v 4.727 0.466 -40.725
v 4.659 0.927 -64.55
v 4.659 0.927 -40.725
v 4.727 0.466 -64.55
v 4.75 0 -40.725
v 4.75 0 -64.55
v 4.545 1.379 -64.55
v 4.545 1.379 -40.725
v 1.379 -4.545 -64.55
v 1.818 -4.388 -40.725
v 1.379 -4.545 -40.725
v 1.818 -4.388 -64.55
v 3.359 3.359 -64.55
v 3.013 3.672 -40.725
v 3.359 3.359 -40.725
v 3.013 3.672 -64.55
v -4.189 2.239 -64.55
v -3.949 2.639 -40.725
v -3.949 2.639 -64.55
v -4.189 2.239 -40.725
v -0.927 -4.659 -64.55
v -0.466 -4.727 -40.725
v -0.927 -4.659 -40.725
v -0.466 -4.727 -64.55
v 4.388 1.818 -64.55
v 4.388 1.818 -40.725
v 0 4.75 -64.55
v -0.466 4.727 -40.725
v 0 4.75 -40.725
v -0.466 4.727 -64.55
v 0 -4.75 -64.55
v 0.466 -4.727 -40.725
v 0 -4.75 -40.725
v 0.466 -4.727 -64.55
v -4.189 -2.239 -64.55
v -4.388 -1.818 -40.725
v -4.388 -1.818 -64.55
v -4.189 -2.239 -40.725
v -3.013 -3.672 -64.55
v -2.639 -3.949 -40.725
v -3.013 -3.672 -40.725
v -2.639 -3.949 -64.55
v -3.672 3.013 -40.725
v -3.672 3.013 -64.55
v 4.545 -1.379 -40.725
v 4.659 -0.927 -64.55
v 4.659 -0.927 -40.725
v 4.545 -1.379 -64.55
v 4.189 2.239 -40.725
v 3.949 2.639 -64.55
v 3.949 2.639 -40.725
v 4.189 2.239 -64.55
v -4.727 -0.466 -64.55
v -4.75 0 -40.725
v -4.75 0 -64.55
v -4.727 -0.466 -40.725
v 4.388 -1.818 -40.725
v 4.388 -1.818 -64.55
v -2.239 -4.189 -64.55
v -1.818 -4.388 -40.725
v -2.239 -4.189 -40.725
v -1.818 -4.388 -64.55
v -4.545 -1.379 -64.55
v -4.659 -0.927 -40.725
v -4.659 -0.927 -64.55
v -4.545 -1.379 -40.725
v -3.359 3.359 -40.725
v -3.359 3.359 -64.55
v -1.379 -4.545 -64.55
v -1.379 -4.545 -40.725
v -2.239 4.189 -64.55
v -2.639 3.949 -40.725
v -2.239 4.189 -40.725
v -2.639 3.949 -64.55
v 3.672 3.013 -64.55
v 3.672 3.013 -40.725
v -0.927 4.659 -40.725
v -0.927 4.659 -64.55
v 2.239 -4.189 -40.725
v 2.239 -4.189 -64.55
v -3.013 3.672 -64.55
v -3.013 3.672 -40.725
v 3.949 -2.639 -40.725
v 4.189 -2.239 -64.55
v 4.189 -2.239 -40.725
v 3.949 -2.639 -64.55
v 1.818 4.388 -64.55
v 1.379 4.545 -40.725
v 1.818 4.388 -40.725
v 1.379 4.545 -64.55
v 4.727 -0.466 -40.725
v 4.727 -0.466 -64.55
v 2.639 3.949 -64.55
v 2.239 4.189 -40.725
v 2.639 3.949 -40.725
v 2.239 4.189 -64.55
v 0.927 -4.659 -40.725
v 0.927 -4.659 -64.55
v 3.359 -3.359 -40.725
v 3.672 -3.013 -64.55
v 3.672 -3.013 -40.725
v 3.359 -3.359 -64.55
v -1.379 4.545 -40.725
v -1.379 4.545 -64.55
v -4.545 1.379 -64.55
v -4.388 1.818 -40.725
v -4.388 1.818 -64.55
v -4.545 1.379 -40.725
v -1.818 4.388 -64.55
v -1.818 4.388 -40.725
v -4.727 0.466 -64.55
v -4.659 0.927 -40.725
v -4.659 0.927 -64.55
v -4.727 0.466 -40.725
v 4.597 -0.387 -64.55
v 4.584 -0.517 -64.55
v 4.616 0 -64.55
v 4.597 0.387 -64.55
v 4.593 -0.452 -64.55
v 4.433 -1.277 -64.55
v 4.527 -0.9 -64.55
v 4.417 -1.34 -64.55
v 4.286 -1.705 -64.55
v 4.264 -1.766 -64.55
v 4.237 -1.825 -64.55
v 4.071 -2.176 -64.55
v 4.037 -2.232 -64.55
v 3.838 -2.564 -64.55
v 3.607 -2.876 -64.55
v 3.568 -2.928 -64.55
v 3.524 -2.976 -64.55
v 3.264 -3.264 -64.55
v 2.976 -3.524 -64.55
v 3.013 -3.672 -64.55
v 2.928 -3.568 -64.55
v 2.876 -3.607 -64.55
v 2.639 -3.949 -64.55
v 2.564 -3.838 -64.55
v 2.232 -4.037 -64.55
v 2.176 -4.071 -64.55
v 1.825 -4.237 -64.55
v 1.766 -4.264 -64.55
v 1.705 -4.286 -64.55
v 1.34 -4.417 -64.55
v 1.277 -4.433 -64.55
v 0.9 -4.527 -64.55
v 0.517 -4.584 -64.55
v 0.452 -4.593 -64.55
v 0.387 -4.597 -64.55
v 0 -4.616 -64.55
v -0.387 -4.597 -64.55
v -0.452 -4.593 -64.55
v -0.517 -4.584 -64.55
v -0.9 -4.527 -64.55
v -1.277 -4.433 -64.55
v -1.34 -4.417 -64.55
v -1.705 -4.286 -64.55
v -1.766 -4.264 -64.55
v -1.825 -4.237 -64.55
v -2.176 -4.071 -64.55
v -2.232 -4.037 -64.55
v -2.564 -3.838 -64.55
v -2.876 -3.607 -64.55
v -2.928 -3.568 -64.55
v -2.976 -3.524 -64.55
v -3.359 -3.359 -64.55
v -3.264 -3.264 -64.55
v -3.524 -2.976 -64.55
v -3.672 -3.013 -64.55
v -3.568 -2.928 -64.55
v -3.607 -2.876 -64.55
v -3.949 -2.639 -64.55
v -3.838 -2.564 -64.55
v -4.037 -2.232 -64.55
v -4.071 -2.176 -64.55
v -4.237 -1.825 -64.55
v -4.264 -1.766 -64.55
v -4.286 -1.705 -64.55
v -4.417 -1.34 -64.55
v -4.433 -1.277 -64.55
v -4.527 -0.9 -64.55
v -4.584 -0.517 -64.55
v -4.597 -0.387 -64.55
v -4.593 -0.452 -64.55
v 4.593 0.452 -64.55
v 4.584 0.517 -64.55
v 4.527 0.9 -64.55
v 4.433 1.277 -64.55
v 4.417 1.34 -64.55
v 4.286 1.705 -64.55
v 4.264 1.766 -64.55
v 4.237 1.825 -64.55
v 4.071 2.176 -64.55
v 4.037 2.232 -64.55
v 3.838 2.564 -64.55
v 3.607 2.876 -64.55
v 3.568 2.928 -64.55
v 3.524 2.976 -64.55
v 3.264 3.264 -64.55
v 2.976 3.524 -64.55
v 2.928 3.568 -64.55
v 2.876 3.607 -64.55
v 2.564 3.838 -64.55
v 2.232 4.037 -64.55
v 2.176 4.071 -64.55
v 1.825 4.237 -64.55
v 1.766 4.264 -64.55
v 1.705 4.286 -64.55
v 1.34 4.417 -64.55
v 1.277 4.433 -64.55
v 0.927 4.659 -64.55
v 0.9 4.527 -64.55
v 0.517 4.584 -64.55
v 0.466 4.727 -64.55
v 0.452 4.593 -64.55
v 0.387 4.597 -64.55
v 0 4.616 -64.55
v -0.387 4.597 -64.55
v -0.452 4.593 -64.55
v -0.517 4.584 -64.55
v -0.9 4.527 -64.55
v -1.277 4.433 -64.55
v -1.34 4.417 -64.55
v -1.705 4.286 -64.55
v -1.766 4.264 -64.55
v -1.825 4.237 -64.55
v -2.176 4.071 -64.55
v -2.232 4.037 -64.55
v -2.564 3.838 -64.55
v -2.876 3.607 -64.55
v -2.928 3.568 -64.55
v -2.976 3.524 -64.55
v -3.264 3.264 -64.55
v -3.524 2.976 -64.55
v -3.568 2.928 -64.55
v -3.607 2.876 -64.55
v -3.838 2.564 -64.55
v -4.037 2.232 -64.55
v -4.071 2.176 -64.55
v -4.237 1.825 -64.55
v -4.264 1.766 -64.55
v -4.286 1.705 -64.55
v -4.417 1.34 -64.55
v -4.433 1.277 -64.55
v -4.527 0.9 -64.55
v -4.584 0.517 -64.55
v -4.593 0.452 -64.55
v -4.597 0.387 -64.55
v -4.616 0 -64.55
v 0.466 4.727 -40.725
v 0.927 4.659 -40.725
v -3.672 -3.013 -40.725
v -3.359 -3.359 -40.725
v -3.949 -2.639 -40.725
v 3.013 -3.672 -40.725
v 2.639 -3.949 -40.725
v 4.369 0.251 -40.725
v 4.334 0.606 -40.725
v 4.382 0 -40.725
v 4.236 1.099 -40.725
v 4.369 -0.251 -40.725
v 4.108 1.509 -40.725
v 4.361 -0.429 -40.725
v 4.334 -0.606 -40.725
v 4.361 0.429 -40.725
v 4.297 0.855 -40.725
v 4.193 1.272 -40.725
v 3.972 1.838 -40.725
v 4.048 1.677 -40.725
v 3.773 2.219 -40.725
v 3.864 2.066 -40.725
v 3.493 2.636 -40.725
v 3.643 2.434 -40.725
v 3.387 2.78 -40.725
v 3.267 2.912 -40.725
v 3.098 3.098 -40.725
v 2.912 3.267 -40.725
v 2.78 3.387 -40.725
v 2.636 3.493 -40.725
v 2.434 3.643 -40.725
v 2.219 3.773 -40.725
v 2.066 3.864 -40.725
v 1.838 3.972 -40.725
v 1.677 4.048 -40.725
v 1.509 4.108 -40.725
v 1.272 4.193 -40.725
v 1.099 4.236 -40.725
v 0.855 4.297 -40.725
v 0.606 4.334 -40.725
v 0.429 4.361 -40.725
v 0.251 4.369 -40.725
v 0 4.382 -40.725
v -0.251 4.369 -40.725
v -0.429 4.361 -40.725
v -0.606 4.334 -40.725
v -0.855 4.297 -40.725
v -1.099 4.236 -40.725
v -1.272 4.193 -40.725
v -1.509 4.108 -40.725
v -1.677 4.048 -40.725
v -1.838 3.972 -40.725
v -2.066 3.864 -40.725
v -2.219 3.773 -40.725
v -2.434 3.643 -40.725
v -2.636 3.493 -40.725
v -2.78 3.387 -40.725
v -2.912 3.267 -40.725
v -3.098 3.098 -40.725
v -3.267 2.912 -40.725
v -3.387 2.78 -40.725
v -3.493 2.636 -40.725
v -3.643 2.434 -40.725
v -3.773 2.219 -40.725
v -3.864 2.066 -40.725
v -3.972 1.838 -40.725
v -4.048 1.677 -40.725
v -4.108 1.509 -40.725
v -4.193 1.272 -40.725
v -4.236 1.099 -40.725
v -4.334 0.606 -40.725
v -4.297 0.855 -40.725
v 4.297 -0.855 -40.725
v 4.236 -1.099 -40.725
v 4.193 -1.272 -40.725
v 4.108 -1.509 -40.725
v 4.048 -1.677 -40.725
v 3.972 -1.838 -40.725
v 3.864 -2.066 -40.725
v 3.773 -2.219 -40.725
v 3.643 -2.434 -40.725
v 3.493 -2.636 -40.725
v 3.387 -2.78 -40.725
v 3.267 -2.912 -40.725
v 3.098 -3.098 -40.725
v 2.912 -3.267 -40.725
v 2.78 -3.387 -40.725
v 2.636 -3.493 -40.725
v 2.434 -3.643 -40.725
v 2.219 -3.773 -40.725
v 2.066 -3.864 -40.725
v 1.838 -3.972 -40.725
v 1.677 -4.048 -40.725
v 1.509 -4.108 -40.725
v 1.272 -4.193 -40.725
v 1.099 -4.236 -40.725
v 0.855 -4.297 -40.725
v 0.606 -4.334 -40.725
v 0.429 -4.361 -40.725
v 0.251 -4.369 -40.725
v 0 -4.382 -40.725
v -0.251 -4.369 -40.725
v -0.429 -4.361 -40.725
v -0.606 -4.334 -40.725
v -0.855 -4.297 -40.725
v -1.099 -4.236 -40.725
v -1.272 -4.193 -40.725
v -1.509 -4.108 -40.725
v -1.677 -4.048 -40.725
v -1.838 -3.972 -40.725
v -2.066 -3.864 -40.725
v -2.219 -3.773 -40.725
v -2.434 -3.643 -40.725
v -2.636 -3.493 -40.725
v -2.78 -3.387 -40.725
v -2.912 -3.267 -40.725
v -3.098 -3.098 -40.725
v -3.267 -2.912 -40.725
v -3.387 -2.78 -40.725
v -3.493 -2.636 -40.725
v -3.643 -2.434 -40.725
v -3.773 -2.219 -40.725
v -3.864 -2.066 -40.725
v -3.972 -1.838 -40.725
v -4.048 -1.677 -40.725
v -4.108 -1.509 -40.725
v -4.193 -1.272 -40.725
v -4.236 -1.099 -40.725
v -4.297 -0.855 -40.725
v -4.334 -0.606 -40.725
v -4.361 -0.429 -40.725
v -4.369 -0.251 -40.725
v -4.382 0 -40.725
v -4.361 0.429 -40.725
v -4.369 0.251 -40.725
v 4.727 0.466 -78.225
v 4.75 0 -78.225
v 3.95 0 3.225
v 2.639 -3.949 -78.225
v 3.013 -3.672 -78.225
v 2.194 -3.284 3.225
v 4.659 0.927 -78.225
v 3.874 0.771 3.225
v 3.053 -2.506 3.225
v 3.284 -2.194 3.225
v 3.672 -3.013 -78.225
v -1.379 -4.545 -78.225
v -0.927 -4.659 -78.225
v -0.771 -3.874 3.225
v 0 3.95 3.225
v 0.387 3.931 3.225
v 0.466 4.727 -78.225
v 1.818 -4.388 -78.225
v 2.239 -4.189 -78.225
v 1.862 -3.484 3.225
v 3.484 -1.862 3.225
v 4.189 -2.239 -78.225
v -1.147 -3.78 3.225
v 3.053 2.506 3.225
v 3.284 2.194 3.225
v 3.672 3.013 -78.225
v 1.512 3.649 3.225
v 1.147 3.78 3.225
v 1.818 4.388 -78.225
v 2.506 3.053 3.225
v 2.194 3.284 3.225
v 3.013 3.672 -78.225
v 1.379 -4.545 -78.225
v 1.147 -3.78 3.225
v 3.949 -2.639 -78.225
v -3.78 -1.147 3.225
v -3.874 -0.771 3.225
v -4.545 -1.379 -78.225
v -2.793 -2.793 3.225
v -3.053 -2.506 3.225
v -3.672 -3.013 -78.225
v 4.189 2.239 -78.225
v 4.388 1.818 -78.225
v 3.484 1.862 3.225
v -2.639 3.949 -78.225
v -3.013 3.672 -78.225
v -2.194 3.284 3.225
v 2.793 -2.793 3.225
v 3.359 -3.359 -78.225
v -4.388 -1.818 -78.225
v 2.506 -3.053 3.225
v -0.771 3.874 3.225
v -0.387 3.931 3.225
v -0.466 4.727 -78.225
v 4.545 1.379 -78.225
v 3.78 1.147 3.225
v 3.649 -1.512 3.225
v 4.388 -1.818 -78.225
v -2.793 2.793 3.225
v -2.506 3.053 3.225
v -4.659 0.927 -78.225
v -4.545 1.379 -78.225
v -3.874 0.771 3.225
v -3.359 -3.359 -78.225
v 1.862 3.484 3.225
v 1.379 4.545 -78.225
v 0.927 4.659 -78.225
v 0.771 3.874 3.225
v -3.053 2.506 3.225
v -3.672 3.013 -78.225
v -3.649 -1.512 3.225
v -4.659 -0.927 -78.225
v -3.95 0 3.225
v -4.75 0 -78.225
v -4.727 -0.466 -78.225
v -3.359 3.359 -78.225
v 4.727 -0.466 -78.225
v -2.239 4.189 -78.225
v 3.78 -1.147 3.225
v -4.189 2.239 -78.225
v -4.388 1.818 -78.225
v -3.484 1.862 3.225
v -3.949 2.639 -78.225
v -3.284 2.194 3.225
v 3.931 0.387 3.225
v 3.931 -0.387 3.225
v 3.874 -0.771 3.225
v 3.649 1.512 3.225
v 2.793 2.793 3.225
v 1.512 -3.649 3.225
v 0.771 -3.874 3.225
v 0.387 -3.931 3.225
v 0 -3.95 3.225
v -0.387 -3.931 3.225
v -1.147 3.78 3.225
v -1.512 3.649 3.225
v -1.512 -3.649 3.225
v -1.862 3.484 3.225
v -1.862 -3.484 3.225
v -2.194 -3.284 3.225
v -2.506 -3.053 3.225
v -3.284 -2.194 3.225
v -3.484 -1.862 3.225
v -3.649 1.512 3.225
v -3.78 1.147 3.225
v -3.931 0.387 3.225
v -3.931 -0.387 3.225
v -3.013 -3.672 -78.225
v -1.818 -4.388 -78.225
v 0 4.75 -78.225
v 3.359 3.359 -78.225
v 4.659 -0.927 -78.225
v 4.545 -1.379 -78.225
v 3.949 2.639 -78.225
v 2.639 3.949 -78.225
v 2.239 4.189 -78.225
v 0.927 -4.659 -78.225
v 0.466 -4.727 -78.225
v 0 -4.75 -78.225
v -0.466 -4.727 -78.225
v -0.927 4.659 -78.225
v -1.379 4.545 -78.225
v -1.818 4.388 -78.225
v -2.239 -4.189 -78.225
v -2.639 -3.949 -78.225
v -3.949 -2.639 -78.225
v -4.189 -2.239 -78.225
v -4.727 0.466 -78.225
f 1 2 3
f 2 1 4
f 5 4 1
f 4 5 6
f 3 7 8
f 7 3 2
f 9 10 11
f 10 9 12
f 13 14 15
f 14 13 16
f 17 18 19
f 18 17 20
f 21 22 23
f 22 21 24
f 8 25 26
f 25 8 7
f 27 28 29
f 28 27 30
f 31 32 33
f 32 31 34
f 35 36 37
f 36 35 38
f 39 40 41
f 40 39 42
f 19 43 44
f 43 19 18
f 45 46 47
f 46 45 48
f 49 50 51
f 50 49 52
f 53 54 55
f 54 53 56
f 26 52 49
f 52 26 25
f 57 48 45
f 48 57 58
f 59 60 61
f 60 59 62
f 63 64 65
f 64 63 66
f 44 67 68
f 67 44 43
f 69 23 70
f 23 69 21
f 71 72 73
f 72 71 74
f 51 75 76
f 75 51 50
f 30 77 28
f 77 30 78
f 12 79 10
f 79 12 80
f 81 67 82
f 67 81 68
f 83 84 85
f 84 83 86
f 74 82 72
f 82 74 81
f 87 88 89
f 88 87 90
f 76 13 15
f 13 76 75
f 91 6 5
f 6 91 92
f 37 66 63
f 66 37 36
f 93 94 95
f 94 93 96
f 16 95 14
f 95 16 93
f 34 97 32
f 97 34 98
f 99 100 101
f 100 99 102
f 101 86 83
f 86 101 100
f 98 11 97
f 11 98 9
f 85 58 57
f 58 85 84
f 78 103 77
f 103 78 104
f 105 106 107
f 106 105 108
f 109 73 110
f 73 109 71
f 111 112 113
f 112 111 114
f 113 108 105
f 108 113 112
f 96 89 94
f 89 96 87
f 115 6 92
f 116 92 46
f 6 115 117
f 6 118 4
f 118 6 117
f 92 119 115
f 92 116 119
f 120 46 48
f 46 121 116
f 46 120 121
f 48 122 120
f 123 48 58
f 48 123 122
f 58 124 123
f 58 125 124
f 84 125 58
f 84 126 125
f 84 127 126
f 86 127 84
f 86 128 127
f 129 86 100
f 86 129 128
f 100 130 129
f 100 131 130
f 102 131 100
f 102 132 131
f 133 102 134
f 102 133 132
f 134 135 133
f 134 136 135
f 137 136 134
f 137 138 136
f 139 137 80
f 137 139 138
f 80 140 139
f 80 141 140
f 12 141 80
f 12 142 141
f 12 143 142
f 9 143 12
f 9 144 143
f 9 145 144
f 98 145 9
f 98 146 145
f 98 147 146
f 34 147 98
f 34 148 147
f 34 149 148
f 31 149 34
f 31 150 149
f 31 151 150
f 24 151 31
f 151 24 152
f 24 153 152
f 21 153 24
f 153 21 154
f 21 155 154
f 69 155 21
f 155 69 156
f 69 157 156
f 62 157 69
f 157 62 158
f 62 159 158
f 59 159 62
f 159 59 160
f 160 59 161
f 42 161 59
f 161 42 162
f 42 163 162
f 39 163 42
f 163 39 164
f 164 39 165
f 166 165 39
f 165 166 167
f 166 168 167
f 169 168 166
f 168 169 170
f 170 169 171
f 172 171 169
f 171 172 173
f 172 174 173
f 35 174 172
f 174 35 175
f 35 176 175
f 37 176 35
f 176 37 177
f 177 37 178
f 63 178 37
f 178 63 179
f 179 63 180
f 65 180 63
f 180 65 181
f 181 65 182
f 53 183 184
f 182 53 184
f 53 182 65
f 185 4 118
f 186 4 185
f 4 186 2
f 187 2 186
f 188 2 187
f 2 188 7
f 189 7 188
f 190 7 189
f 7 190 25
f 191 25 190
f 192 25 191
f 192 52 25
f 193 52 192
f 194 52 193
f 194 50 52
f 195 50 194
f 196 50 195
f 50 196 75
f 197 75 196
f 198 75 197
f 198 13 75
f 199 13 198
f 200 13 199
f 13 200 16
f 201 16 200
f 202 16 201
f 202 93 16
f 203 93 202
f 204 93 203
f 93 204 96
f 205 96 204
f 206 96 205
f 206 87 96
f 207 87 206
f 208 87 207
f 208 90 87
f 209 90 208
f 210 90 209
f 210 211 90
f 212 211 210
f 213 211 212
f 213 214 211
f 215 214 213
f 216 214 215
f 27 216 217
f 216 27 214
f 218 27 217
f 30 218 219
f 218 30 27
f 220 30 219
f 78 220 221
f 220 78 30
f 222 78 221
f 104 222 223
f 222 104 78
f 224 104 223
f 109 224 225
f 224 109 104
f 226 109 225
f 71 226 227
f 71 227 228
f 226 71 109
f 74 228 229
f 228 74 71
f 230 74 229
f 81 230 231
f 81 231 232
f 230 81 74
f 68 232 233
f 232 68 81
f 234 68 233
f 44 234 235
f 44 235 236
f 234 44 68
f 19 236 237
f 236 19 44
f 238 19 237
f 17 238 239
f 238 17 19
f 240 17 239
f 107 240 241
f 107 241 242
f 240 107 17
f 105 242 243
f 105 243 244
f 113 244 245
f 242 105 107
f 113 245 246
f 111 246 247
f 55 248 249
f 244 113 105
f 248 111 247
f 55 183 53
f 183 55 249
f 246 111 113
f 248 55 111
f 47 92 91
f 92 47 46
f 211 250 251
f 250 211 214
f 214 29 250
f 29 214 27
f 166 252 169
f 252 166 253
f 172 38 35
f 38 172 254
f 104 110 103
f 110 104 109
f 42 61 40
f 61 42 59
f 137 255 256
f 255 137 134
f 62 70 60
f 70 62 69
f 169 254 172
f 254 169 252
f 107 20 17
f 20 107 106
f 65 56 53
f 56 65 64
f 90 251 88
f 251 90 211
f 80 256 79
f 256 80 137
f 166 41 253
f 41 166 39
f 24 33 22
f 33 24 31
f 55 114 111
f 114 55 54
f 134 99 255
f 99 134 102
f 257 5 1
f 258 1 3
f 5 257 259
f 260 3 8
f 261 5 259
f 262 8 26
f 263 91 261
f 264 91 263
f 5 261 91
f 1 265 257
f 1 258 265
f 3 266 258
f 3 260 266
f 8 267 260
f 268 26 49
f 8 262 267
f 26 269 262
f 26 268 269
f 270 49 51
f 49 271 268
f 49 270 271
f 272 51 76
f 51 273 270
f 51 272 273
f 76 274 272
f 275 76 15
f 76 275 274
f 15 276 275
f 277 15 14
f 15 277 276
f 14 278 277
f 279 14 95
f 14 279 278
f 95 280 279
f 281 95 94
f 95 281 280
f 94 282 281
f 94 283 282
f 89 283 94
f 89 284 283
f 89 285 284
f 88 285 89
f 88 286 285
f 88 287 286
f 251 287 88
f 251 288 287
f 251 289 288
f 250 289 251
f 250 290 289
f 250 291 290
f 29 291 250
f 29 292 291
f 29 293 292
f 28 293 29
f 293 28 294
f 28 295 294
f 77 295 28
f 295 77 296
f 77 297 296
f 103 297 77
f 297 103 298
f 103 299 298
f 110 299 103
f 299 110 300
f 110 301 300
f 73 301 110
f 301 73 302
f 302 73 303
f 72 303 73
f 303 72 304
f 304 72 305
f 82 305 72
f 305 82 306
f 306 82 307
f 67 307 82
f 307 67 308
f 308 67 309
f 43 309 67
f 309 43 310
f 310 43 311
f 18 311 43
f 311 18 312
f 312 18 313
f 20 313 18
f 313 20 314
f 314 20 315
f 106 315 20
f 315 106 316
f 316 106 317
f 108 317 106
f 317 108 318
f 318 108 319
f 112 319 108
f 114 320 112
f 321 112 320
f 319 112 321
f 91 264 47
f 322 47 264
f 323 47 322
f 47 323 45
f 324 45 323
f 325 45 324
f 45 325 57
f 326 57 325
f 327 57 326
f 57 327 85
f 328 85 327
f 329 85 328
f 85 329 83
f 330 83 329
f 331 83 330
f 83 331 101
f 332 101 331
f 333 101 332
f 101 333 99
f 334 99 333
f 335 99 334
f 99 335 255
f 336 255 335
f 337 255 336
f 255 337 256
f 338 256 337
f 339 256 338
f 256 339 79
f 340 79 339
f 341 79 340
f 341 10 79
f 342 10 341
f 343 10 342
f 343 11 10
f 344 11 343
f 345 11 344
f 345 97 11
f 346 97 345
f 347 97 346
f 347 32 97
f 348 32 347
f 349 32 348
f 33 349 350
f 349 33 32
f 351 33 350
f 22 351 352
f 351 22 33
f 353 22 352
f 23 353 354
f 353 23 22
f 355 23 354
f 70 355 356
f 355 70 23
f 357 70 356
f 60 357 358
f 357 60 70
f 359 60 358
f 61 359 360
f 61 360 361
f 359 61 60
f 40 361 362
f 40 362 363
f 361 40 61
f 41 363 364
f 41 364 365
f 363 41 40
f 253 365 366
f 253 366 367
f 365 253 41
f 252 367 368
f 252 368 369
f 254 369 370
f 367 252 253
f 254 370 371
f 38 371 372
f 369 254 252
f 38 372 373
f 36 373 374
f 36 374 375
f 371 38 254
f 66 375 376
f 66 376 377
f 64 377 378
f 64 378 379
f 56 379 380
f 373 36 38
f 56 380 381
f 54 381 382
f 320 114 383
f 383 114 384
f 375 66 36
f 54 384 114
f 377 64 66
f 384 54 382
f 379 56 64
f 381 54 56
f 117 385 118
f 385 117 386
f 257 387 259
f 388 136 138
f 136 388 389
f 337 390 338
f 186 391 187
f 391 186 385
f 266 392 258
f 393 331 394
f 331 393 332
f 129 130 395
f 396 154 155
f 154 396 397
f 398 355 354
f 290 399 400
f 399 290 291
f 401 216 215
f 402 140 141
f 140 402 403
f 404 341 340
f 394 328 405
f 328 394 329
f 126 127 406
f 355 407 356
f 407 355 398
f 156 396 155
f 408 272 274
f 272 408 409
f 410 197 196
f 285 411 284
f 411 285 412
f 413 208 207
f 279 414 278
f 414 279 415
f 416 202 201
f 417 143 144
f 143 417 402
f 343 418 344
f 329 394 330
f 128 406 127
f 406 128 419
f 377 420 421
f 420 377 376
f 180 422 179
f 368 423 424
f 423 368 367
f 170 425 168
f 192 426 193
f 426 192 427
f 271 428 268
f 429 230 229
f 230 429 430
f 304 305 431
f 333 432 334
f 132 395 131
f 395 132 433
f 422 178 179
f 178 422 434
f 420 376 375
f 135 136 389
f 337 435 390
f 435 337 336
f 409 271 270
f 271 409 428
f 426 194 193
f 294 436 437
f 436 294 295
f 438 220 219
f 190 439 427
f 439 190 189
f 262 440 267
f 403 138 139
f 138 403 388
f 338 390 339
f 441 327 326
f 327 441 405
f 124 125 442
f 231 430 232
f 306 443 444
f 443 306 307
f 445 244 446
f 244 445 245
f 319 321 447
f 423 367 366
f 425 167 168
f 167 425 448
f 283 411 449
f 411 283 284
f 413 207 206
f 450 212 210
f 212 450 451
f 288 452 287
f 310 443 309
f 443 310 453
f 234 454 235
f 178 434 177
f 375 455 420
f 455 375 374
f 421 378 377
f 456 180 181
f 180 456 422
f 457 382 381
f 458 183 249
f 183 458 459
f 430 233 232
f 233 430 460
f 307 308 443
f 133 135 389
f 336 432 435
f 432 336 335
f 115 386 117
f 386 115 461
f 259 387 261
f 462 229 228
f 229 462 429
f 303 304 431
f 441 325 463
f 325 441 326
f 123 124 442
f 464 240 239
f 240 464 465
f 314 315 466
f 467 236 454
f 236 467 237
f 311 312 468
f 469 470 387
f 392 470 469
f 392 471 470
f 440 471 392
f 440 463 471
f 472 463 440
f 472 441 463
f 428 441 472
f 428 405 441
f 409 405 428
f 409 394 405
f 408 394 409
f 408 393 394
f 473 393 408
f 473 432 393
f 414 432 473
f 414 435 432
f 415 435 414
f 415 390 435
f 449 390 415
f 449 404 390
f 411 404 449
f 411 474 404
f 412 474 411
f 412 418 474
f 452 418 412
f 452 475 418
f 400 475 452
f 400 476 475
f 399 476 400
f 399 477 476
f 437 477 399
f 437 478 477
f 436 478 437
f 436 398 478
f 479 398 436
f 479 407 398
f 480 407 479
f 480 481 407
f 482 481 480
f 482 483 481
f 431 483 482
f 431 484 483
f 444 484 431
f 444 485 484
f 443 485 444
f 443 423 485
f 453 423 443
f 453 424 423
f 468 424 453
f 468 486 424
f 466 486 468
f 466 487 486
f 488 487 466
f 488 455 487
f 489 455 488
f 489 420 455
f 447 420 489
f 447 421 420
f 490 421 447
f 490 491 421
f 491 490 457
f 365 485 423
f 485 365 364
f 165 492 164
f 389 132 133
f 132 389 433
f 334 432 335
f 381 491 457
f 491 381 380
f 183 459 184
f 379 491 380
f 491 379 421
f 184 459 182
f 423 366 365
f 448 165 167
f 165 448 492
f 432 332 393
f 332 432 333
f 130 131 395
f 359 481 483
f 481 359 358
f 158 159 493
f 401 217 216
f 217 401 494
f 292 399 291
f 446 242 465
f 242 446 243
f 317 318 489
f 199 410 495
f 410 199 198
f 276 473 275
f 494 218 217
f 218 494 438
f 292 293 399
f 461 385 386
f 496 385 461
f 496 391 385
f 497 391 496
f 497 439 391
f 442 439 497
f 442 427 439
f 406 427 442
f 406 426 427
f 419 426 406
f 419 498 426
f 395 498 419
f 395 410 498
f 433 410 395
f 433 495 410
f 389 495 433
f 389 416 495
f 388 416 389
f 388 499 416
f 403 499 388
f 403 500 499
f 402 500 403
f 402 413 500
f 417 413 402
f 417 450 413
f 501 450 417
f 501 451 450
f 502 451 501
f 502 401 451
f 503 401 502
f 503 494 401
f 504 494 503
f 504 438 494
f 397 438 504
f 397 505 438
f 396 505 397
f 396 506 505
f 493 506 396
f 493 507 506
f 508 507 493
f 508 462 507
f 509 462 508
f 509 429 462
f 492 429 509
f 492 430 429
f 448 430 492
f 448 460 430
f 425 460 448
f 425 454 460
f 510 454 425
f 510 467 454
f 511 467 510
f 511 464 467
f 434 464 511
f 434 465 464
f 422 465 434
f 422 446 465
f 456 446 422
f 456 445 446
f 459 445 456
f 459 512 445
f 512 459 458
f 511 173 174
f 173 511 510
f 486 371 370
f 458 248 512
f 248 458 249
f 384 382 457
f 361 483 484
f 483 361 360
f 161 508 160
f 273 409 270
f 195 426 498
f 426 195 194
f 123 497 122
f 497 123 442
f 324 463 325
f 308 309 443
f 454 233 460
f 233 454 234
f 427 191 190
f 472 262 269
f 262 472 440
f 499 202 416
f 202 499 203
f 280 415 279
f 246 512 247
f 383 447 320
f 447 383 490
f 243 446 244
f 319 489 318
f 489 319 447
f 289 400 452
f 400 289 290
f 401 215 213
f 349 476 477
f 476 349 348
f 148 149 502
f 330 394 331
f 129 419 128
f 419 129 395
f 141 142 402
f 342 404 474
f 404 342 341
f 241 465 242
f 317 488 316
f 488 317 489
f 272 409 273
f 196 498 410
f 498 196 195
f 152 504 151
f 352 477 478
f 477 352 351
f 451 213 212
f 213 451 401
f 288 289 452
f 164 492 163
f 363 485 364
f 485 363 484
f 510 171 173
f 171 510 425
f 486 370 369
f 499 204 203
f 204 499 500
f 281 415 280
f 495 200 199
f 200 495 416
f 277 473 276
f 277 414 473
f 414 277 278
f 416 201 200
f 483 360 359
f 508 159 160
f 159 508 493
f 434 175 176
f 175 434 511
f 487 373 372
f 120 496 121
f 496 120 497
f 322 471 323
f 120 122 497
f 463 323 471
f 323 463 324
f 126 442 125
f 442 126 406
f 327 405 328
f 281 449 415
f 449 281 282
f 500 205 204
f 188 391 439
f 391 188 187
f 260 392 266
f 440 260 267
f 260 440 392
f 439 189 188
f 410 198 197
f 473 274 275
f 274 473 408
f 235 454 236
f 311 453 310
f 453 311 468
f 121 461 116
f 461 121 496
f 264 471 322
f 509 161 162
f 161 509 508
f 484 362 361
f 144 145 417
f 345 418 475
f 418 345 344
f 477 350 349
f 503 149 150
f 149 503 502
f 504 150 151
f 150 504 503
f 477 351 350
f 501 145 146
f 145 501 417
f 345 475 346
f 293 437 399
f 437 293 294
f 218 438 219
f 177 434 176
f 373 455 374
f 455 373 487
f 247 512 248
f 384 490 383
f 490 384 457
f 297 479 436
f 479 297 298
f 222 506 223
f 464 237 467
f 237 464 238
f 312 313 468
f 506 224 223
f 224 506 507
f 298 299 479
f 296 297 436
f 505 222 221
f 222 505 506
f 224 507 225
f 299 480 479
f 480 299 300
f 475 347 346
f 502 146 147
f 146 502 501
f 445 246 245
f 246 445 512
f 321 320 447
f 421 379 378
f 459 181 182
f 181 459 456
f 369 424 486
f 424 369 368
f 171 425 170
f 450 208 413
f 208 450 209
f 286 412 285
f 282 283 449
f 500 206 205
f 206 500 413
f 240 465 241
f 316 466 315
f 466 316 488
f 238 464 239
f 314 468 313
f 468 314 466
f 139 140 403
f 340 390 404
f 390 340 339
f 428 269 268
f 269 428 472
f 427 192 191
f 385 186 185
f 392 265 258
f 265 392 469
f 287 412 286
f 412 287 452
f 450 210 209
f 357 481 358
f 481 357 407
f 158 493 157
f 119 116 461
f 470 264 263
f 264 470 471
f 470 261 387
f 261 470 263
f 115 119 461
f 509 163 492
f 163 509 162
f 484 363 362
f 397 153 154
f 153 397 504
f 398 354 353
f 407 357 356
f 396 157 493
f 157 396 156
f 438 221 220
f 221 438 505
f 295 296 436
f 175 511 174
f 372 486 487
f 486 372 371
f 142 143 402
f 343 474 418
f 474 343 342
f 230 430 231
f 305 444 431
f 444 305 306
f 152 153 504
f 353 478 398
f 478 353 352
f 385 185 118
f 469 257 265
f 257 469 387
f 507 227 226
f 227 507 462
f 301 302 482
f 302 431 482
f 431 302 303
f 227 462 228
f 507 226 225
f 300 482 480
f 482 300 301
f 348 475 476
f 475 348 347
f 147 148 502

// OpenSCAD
$fn = 64;

module antenna() {
    // Base cylinder
    cylinder(h = 20.6, d1 = 9.5, d2 = 9.5, center = true);

    // Pivot cylinder
    translate([0, 0, 20.6 / 2])
        cylinder(h = 6.45, d1 = 9.5, d2 = 9.5, center = true);

    // Folding whip section
    translate([0, 0, 20.6 / 2 + 6.45])
        cylinder(h = 108.5 - 20.6 - 6.45, d1 = 9.5, d2 = 7.9, center = true);
}

// Center the model near the origin
translate([0, 0, -108.5 / 2])
    antenna();
